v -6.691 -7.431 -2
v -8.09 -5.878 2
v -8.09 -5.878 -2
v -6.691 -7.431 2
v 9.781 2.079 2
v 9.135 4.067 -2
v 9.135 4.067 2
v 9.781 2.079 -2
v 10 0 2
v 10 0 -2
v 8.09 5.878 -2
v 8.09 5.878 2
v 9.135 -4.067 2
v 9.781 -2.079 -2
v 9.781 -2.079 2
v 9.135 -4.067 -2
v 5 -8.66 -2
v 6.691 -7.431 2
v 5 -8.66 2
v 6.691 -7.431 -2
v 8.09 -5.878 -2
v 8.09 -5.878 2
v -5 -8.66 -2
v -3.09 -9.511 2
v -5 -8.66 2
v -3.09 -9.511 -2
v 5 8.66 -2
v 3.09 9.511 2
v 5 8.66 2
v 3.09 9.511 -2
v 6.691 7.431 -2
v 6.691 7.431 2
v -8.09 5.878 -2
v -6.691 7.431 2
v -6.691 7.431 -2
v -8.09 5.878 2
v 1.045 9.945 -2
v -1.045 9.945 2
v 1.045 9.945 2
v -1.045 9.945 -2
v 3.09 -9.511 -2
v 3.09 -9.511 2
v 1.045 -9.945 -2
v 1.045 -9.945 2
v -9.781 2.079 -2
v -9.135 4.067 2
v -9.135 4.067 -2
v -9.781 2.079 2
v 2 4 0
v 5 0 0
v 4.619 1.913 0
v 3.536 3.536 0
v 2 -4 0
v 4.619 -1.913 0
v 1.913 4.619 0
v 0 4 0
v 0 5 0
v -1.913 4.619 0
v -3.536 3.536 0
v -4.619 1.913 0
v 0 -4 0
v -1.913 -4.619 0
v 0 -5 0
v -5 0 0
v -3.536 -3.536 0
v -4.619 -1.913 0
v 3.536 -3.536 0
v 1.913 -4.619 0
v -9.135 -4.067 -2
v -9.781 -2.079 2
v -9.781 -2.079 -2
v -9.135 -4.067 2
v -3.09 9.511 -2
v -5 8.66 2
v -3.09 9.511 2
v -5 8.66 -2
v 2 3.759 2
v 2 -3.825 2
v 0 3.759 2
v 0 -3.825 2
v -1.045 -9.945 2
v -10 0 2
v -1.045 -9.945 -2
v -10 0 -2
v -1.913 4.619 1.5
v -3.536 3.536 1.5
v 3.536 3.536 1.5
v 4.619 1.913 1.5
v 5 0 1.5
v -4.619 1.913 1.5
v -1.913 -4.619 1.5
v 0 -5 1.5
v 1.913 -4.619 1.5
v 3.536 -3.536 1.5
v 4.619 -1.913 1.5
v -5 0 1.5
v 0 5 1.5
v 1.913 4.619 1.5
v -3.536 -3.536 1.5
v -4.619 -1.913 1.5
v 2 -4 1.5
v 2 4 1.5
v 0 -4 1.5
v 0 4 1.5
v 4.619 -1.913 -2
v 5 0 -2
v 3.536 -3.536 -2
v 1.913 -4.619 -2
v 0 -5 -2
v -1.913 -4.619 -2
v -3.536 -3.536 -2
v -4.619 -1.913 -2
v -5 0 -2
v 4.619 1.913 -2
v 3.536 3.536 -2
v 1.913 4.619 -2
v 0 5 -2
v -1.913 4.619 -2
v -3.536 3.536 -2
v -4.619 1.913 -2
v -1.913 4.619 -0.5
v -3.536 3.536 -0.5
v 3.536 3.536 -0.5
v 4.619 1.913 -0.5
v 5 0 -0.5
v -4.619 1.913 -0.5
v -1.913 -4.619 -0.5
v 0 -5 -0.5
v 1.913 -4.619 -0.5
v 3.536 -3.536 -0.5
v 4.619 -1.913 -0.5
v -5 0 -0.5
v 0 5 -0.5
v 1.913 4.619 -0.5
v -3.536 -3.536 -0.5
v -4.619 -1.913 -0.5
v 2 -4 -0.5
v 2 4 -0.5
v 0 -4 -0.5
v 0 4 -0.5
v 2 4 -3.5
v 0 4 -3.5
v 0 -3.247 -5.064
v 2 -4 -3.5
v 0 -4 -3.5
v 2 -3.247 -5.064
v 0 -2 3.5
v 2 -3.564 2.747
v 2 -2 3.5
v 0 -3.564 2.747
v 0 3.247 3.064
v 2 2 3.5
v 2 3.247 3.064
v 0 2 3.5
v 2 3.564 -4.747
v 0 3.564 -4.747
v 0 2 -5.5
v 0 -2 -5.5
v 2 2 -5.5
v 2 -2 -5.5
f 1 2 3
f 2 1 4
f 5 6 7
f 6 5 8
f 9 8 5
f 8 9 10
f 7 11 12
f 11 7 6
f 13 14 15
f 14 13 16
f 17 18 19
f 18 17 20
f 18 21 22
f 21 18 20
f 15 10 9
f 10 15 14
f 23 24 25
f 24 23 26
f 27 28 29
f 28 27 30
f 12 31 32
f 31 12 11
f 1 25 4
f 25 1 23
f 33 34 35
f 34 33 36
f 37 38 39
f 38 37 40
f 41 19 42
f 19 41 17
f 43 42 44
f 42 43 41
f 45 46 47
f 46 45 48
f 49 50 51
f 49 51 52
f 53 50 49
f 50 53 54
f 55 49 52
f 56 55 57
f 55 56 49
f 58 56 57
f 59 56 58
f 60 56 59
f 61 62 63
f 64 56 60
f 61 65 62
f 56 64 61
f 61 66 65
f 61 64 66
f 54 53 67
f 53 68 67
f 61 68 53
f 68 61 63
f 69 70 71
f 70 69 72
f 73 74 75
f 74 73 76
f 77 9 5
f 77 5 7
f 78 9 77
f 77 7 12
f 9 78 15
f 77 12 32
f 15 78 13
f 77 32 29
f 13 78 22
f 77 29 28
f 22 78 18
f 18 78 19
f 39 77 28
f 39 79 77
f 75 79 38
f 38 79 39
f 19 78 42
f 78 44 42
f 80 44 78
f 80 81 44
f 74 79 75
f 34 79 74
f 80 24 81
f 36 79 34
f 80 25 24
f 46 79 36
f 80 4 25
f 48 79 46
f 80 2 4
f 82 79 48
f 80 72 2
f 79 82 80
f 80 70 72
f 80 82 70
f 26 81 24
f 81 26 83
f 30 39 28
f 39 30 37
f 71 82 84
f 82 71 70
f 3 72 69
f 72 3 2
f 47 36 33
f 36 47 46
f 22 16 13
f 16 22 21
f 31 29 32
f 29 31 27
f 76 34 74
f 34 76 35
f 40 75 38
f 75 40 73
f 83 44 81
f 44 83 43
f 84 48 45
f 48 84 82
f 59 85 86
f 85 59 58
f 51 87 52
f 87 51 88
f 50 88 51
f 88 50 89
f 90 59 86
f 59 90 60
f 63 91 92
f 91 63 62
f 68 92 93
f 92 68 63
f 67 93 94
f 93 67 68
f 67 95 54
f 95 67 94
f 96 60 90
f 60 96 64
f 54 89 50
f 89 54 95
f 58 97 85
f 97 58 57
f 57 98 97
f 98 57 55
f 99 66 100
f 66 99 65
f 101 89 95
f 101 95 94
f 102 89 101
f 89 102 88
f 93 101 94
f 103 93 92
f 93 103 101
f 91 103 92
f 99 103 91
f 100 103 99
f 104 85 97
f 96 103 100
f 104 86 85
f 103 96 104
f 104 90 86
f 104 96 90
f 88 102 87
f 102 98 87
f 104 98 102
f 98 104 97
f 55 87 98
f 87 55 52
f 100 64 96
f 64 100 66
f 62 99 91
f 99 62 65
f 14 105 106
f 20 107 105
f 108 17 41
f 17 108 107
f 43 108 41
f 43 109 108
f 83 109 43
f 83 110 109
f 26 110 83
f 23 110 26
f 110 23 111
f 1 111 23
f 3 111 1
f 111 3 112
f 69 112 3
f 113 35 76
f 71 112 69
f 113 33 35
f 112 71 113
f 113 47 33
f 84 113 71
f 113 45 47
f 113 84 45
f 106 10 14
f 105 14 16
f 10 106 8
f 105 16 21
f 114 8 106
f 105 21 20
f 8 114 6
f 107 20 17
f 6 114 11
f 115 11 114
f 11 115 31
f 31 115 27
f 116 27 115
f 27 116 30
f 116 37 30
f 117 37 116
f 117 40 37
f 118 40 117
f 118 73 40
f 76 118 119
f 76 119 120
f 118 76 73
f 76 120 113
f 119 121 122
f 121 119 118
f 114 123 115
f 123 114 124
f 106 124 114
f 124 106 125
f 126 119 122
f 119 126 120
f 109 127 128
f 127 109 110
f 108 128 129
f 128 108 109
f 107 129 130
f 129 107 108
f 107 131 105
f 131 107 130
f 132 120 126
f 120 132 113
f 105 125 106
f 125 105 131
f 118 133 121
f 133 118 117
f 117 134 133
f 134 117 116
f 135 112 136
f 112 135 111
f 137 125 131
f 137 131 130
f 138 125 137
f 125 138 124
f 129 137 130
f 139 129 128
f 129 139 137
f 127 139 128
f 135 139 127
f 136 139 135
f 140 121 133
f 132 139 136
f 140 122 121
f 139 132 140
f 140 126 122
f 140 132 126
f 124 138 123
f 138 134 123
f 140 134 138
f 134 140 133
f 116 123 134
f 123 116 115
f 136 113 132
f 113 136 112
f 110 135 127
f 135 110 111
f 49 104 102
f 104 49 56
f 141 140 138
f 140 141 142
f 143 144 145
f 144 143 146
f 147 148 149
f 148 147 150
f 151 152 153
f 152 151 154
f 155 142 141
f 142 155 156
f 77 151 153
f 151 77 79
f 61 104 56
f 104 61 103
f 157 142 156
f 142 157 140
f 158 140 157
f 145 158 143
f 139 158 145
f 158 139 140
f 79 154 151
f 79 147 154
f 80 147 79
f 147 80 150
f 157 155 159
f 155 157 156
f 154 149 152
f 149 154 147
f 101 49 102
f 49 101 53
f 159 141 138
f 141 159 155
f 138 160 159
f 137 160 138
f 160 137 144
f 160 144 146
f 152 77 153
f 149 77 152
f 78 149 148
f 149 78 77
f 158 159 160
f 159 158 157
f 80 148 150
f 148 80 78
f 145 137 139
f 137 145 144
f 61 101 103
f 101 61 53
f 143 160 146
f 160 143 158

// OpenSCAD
// Parameters for the spacer ring
module spacer_ring(inner_diameter, outer_diameter, thickness) {
    difference() {
        cylinder(h = thickness, r = outer_diameter / 2, center = true);
        translate([0, 0, -thickness / 2])
            cylinder(h = thickness + 1, r = inner_diameter / 2, center = true);
    }
}

// Parameters for the connector bridge
module connector_bridge(width, height, curvature) {
    translate([0, 0, -height / 2])
        rotate([0, 90, 0])
            linear_extrude(height = height)
                offset(r = curvature)
                    square([width, 2 * curvature], center = true);
}

// Dimensions
spacer_ring_inner_diameter = 10;
spacer_ring_outer_diameter = 20;
spacer_ring_thickness = 2;

connector_bridge_width = 5;
connector_bridge_height = 2;
connector_bridge_curvature = 2;

// Assembly
module flexible_coupling() {
    // Layer 1: Top spacer ring
    translate([0, 0, spacer_ring_thickness / 2])
        spacer_ring(spacer_ring_inner_diameter, spacer_ring_outer_diameter, spacer_ring_thickness);

    // Layer 2: Connector bridge
    translate([0, 0, 0])
        connector_bridge(connector_bridge_width, connector_bridge_height, connector_bridge_curvature);

    // Layer 3: Bottom spacer ring
    translate([0, 0, -spacer_ring_thickness / 2])
        spacer_ring(spacer_ring_inner_diameter, spacer_ring_outer_diameter, spacer_ring_thickness);
}

// Render the model
flexible_coupling();
